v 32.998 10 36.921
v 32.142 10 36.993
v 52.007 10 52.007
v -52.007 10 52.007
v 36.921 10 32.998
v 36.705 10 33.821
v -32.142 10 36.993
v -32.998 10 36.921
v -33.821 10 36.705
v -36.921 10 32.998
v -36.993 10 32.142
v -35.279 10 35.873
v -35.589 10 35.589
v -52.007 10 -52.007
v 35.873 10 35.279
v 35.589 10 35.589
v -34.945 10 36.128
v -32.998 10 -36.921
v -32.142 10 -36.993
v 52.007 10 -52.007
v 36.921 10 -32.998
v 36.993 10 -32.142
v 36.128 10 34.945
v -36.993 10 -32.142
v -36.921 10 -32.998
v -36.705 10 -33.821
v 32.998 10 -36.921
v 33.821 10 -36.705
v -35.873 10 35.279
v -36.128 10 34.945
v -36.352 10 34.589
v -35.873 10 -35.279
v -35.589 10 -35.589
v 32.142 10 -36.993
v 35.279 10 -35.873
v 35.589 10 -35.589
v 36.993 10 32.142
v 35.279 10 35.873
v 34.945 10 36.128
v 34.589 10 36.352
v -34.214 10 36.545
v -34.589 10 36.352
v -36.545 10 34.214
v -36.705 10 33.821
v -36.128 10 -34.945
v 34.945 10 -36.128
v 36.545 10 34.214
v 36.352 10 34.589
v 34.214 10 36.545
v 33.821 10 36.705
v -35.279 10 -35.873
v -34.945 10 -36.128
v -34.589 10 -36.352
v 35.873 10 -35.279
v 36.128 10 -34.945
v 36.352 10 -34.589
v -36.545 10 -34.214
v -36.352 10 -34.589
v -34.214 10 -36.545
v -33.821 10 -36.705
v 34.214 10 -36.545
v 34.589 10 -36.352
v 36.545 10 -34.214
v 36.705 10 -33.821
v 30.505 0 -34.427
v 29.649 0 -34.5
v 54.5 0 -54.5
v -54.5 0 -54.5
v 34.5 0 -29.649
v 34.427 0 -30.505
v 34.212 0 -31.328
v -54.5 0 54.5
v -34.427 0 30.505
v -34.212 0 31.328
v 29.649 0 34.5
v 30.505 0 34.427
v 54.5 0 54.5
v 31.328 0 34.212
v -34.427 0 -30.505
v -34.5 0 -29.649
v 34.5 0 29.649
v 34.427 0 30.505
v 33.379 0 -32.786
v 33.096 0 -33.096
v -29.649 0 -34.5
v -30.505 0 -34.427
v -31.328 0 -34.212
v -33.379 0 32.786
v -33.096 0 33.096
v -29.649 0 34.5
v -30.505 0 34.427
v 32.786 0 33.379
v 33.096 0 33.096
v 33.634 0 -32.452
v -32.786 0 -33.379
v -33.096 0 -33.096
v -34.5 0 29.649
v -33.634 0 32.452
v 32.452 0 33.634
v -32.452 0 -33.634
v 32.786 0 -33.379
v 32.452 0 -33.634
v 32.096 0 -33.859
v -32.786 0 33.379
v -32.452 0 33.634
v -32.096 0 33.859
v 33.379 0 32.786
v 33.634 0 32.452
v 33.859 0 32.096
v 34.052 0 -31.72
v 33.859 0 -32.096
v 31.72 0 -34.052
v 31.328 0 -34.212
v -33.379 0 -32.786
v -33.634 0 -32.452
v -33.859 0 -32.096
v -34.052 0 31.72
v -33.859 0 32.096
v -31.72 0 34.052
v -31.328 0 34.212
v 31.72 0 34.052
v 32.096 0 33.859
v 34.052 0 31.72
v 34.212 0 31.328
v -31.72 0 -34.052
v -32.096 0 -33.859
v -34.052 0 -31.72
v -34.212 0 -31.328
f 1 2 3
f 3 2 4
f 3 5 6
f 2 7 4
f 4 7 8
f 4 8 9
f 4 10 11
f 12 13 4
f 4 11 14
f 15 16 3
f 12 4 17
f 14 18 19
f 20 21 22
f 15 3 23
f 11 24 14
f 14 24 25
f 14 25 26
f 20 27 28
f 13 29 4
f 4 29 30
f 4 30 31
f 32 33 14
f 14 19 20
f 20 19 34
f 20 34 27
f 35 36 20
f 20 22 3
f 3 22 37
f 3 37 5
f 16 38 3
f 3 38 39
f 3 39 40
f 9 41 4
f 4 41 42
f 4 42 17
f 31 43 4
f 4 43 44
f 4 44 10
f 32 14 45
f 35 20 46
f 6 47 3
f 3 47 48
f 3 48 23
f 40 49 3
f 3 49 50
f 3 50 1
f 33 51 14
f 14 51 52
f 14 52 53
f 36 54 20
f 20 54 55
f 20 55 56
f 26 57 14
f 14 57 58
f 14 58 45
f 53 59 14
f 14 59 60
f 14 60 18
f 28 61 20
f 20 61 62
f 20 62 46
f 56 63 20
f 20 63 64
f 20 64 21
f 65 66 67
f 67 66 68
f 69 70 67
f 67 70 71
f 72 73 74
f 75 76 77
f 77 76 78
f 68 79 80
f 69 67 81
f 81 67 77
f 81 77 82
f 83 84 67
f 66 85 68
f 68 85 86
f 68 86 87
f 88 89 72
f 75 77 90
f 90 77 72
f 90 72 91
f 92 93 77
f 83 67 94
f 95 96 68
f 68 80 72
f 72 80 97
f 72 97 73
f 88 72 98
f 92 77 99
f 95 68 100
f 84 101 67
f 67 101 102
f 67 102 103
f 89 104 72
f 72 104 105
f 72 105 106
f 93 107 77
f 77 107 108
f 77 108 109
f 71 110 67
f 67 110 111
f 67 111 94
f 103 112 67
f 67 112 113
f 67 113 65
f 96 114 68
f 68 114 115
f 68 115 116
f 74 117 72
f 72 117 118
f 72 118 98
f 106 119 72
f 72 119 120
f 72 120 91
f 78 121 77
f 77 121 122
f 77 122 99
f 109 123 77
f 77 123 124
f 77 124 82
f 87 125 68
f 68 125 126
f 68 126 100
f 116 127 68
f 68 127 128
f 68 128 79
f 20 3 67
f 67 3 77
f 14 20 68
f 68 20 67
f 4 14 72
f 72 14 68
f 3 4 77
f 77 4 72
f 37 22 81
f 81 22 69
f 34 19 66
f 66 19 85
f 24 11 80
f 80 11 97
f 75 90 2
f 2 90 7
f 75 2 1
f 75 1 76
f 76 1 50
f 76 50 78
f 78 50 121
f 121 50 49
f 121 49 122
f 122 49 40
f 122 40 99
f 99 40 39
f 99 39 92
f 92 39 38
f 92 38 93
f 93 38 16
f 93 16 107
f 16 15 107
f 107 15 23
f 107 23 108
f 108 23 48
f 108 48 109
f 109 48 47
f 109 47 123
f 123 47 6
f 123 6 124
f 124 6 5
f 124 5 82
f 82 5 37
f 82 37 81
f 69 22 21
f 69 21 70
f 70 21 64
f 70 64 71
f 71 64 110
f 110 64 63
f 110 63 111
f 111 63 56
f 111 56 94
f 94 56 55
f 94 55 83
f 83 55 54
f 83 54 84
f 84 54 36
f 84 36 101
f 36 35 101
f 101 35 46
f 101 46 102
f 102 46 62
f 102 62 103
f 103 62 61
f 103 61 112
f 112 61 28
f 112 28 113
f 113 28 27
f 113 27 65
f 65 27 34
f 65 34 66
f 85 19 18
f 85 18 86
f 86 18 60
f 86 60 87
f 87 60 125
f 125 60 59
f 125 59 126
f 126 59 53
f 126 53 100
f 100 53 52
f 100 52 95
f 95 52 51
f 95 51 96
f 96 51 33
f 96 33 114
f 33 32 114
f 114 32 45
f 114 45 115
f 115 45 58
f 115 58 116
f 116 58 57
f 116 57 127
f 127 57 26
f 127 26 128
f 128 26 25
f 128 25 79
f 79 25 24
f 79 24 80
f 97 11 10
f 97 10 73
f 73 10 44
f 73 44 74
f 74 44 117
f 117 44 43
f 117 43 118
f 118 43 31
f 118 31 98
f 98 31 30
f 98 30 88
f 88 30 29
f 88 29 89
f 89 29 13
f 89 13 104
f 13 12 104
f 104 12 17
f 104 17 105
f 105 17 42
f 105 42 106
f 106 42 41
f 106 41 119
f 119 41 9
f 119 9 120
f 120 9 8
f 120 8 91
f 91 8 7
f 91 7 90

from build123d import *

# Parameters (mm, degrees)
SKETCH1_W           = 109
SKETCH1_H           = 109
SKETCH1_W_2         = 69
SKETCH1_H_2         = 69
EXTRUDE_THIN1_DEPTH = 10
EXTRUDE_THIN1_TAPER = 14
FILLET1_R           = 5


with BuildPart() as part:
    # Sketch1 → Extrude-Thin1 (new body)
    with BuildSketch(Plane(origin=(0, 0, 0), x_dir=(1, 0, 0), z_dir=(0, 1, 0))):
        Rectangle(SKETCH1_W, SKETCH1_H)
        Rectangle(SKETCH1_W_2, SKETCH1_H_2, mode=Mode.SUBTRACT)
    extrude(amount=EXTRUDE_THIN1_DEPTH, taper=EXTRUDE_THIN1_TAPER)

    # Fillet1
    fillet1_edges = [part.edges().sort_by_distance(p)[0] for p in [
        (35.746640014, 5, 35.746640014),
        (35.746640014, 5, -35.746640014),
        (-35.746640014, 5, -35.746640014),
        (-35.746640014, 5, 35.746640014),
    ]]
    fillet(fillet1_edges, radius=FILLET1_R)


solid = part.part
